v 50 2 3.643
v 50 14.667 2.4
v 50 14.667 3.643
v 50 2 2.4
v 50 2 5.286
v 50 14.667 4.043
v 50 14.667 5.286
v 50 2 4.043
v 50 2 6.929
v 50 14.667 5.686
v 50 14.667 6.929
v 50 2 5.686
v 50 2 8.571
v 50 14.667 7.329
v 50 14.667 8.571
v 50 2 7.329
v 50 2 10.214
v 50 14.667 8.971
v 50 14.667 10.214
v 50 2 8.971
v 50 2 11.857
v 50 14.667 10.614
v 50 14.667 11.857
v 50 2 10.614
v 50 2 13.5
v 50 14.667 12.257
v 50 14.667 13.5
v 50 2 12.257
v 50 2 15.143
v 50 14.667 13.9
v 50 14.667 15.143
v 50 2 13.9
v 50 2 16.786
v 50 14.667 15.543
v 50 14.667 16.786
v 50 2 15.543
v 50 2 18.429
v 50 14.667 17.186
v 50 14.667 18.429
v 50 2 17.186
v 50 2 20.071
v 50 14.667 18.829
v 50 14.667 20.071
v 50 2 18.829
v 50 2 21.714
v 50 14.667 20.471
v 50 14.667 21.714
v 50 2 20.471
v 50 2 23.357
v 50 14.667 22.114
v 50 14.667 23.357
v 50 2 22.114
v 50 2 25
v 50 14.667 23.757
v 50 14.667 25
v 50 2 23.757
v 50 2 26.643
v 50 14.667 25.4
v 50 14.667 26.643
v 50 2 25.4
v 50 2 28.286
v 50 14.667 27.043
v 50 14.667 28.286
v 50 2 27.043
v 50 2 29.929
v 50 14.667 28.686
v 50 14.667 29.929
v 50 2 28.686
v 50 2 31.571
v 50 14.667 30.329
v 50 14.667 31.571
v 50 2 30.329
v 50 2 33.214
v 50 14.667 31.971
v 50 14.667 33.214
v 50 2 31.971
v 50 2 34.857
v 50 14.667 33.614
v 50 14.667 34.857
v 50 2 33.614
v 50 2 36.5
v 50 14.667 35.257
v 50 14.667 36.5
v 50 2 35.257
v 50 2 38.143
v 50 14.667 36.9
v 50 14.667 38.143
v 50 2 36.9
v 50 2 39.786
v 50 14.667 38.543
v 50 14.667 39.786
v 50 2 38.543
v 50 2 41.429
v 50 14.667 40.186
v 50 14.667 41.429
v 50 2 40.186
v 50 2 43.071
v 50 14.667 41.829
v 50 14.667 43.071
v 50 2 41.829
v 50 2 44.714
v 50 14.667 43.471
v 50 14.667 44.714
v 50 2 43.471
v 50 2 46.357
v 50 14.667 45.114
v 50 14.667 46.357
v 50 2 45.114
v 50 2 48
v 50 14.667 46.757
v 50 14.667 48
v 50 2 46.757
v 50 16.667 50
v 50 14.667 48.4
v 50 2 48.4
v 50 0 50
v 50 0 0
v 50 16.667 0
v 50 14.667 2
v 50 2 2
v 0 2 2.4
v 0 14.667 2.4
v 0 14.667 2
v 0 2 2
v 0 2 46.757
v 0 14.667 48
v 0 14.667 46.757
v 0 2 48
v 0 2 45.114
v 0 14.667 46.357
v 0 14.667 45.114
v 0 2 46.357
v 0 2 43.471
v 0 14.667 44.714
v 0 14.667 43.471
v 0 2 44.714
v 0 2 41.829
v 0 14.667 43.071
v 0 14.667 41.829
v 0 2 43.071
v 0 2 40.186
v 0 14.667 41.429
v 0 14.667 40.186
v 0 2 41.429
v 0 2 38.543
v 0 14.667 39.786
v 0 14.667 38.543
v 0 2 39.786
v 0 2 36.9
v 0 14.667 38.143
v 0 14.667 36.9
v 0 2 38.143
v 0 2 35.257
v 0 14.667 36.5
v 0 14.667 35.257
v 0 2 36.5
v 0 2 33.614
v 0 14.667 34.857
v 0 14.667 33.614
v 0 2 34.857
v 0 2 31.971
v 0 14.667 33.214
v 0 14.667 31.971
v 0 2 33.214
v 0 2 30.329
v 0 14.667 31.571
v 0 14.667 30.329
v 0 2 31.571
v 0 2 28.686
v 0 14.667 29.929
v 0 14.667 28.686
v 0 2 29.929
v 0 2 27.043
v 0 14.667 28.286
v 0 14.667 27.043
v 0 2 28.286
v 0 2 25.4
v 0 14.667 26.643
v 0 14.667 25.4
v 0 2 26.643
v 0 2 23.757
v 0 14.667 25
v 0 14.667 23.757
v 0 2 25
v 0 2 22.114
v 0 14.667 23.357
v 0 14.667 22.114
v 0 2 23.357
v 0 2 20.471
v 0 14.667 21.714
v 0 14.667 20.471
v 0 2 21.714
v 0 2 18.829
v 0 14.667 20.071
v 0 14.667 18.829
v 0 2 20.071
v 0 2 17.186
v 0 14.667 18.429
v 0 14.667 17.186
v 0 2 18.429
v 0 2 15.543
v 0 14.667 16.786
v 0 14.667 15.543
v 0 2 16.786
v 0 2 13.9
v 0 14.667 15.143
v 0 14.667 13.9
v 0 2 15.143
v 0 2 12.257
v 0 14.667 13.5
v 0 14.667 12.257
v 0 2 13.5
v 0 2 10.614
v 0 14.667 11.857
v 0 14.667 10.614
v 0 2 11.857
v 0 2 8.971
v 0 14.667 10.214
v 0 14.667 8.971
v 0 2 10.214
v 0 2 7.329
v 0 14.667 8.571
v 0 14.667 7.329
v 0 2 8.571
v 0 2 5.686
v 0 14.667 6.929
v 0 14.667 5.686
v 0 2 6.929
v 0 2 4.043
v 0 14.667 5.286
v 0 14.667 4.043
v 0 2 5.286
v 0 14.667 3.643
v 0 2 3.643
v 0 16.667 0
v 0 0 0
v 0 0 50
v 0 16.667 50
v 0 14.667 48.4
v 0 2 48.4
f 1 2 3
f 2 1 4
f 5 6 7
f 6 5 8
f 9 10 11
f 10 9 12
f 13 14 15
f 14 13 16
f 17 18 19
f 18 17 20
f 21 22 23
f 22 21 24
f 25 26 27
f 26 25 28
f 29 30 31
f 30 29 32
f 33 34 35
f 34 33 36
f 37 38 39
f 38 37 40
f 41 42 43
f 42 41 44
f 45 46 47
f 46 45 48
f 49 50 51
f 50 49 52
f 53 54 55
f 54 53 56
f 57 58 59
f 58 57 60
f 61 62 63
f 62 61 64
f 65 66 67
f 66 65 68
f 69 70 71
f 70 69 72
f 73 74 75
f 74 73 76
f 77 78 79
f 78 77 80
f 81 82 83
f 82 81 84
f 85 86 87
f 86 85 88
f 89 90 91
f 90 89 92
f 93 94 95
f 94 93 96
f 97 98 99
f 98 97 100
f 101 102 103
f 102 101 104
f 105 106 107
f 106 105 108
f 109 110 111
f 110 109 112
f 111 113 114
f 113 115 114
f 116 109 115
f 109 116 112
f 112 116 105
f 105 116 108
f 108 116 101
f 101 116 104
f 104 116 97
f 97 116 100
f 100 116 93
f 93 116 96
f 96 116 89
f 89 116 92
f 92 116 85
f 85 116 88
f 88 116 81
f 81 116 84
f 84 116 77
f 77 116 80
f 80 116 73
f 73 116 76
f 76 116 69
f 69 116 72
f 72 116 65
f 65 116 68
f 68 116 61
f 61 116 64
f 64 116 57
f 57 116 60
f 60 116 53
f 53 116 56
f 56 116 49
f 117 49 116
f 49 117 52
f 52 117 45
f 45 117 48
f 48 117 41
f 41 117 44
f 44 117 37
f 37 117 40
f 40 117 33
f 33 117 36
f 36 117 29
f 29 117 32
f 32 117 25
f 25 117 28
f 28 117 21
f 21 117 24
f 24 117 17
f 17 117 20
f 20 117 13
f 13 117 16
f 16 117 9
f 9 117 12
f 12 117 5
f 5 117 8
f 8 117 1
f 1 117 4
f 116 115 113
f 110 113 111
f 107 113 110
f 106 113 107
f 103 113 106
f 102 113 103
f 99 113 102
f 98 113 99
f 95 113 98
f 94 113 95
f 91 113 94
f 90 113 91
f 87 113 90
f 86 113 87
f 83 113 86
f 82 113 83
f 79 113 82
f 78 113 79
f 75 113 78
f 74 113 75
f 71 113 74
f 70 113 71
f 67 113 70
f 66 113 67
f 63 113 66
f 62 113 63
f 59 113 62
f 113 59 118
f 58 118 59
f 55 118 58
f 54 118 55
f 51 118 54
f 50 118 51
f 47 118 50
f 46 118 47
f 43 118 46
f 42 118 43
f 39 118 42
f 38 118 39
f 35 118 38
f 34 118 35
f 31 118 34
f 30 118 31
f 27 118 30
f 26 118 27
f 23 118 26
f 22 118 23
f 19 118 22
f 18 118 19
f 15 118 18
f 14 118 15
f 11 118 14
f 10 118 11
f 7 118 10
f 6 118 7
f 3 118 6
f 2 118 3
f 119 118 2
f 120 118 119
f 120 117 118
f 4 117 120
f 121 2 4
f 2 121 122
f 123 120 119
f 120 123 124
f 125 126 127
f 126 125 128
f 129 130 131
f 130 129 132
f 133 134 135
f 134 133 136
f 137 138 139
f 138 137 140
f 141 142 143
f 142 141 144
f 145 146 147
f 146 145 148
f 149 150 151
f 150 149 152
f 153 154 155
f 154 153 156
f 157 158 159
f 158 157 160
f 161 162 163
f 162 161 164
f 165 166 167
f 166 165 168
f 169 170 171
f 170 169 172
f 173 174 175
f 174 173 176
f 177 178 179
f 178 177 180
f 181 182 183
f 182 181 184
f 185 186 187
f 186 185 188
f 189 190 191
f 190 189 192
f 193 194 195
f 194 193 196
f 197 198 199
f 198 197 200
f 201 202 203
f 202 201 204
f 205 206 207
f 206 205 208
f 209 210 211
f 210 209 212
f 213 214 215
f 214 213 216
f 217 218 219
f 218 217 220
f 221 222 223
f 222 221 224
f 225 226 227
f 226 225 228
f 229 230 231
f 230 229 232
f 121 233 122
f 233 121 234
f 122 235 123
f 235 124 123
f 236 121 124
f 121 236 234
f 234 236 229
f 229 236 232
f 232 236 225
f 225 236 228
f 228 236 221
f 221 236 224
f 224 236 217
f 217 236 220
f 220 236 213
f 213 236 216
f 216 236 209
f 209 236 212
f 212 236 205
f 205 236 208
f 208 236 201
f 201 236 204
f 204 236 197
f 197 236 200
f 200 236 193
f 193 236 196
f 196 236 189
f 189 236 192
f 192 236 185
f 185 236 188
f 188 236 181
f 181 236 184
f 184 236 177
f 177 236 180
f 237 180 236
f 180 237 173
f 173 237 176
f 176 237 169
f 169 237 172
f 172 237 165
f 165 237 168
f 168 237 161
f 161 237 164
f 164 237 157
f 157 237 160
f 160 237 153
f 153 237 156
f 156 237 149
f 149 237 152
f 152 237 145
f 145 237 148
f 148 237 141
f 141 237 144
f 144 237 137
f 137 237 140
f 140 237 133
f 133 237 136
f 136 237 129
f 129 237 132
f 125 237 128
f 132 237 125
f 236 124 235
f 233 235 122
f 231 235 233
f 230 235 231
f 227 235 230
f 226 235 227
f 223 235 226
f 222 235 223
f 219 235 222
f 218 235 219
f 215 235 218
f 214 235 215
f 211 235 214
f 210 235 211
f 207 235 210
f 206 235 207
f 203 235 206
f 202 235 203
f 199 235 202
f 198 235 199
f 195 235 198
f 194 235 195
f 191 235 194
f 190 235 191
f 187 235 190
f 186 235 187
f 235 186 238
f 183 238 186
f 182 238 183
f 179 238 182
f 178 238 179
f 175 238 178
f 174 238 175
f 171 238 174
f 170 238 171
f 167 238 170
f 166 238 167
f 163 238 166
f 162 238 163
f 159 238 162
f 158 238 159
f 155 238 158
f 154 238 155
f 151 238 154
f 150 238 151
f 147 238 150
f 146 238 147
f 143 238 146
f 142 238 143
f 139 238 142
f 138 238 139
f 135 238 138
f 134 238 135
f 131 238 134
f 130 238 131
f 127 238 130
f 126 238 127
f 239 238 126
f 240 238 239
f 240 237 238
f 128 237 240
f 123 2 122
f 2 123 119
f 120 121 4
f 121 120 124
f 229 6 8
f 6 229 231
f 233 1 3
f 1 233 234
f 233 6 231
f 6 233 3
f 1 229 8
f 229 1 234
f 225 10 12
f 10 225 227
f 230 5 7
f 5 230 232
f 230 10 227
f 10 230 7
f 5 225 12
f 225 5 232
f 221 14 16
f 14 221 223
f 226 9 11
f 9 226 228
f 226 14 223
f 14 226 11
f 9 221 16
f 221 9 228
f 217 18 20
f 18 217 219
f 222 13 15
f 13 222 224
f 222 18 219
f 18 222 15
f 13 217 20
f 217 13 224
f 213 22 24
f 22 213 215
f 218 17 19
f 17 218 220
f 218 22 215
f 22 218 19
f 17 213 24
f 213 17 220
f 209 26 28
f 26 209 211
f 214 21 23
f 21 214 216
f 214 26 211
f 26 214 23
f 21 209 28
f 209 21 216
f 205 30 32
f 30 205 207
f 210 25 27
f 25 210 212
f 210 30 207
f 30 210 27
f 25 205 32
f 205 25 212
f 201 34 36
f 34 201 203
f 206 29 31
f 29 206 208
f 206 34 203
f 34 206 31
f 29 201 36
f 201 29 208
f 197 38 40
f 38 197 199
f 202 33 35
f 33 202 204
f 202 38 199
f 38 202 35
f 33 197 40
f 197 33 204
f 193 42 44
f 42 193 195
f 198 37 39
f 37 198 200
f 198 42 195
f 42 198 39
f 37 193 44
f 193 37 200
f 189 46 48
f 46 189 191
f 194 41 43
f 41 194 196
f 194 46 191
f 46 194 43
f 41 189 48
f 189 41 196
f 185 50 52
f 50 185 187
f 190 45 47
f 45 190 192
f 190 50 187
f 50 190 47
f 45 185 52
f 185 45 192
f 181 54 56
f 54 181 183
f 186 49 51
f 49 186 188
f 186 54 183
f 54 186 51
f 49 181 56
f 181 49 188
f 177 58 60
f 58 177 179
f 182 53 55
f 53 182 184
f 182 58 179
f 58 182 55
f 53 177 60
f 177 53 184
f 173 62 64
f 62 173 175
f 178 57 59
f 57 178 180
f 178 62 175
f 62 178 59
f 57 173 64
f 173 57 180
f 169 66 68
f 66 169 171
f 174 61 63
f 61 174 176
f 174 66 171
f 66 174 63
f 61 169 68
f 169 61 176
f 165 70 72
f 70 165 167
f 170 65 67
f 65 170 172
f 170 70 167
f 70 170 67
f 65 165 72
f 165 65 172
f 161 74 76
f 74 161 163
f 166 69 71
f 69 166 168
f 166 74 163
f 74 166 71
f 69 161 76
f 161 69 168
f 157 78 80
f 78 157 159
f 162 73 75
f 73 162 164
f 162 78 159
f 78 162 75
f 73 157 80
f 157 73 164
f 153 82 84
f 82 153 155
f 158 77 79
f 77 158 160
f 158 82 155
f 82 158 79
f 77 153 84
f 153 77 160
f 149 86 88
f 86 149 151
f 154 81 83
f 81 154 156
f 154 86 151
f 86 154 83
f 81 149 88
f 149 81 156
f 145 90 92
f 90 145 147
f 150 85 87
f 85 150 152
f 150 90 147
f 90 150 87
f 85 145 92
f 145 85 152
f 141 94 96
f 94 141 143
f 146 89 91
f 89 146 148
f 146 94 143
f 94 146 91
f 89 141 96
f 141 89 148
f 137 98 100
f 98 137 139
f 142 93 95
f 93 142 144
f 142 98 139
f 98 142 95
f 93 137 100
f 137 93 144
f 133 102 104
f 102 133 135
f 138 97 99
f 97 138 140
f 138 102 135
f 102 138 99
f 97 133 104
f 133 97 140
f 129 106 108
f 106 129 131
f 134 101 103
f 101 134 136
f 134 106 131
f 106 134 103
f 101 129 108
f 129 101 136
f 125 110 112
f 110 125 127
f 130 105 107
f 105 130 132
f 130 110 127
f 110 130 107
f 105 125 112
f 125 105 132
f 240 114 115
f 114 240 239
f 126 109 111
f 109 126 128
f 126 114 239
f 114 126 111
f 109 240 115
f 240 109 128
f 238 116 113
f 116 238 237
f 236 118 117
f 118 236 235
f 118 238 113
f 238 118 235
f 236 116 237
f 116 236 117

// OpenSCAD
$fa = 1;
$fs = 0.15;

// base
s = 50;
ss = 0.4;
wall = 2;
slits = 28;
difference() {
  cube([s, s/3, s]);
  for(i = [0 : 1 : slits]) {
    translate([0, wall, wall + (s-2*wall)/slits*(i)])
    cube([s, s/3-2*wall, ss]);
  }
};
